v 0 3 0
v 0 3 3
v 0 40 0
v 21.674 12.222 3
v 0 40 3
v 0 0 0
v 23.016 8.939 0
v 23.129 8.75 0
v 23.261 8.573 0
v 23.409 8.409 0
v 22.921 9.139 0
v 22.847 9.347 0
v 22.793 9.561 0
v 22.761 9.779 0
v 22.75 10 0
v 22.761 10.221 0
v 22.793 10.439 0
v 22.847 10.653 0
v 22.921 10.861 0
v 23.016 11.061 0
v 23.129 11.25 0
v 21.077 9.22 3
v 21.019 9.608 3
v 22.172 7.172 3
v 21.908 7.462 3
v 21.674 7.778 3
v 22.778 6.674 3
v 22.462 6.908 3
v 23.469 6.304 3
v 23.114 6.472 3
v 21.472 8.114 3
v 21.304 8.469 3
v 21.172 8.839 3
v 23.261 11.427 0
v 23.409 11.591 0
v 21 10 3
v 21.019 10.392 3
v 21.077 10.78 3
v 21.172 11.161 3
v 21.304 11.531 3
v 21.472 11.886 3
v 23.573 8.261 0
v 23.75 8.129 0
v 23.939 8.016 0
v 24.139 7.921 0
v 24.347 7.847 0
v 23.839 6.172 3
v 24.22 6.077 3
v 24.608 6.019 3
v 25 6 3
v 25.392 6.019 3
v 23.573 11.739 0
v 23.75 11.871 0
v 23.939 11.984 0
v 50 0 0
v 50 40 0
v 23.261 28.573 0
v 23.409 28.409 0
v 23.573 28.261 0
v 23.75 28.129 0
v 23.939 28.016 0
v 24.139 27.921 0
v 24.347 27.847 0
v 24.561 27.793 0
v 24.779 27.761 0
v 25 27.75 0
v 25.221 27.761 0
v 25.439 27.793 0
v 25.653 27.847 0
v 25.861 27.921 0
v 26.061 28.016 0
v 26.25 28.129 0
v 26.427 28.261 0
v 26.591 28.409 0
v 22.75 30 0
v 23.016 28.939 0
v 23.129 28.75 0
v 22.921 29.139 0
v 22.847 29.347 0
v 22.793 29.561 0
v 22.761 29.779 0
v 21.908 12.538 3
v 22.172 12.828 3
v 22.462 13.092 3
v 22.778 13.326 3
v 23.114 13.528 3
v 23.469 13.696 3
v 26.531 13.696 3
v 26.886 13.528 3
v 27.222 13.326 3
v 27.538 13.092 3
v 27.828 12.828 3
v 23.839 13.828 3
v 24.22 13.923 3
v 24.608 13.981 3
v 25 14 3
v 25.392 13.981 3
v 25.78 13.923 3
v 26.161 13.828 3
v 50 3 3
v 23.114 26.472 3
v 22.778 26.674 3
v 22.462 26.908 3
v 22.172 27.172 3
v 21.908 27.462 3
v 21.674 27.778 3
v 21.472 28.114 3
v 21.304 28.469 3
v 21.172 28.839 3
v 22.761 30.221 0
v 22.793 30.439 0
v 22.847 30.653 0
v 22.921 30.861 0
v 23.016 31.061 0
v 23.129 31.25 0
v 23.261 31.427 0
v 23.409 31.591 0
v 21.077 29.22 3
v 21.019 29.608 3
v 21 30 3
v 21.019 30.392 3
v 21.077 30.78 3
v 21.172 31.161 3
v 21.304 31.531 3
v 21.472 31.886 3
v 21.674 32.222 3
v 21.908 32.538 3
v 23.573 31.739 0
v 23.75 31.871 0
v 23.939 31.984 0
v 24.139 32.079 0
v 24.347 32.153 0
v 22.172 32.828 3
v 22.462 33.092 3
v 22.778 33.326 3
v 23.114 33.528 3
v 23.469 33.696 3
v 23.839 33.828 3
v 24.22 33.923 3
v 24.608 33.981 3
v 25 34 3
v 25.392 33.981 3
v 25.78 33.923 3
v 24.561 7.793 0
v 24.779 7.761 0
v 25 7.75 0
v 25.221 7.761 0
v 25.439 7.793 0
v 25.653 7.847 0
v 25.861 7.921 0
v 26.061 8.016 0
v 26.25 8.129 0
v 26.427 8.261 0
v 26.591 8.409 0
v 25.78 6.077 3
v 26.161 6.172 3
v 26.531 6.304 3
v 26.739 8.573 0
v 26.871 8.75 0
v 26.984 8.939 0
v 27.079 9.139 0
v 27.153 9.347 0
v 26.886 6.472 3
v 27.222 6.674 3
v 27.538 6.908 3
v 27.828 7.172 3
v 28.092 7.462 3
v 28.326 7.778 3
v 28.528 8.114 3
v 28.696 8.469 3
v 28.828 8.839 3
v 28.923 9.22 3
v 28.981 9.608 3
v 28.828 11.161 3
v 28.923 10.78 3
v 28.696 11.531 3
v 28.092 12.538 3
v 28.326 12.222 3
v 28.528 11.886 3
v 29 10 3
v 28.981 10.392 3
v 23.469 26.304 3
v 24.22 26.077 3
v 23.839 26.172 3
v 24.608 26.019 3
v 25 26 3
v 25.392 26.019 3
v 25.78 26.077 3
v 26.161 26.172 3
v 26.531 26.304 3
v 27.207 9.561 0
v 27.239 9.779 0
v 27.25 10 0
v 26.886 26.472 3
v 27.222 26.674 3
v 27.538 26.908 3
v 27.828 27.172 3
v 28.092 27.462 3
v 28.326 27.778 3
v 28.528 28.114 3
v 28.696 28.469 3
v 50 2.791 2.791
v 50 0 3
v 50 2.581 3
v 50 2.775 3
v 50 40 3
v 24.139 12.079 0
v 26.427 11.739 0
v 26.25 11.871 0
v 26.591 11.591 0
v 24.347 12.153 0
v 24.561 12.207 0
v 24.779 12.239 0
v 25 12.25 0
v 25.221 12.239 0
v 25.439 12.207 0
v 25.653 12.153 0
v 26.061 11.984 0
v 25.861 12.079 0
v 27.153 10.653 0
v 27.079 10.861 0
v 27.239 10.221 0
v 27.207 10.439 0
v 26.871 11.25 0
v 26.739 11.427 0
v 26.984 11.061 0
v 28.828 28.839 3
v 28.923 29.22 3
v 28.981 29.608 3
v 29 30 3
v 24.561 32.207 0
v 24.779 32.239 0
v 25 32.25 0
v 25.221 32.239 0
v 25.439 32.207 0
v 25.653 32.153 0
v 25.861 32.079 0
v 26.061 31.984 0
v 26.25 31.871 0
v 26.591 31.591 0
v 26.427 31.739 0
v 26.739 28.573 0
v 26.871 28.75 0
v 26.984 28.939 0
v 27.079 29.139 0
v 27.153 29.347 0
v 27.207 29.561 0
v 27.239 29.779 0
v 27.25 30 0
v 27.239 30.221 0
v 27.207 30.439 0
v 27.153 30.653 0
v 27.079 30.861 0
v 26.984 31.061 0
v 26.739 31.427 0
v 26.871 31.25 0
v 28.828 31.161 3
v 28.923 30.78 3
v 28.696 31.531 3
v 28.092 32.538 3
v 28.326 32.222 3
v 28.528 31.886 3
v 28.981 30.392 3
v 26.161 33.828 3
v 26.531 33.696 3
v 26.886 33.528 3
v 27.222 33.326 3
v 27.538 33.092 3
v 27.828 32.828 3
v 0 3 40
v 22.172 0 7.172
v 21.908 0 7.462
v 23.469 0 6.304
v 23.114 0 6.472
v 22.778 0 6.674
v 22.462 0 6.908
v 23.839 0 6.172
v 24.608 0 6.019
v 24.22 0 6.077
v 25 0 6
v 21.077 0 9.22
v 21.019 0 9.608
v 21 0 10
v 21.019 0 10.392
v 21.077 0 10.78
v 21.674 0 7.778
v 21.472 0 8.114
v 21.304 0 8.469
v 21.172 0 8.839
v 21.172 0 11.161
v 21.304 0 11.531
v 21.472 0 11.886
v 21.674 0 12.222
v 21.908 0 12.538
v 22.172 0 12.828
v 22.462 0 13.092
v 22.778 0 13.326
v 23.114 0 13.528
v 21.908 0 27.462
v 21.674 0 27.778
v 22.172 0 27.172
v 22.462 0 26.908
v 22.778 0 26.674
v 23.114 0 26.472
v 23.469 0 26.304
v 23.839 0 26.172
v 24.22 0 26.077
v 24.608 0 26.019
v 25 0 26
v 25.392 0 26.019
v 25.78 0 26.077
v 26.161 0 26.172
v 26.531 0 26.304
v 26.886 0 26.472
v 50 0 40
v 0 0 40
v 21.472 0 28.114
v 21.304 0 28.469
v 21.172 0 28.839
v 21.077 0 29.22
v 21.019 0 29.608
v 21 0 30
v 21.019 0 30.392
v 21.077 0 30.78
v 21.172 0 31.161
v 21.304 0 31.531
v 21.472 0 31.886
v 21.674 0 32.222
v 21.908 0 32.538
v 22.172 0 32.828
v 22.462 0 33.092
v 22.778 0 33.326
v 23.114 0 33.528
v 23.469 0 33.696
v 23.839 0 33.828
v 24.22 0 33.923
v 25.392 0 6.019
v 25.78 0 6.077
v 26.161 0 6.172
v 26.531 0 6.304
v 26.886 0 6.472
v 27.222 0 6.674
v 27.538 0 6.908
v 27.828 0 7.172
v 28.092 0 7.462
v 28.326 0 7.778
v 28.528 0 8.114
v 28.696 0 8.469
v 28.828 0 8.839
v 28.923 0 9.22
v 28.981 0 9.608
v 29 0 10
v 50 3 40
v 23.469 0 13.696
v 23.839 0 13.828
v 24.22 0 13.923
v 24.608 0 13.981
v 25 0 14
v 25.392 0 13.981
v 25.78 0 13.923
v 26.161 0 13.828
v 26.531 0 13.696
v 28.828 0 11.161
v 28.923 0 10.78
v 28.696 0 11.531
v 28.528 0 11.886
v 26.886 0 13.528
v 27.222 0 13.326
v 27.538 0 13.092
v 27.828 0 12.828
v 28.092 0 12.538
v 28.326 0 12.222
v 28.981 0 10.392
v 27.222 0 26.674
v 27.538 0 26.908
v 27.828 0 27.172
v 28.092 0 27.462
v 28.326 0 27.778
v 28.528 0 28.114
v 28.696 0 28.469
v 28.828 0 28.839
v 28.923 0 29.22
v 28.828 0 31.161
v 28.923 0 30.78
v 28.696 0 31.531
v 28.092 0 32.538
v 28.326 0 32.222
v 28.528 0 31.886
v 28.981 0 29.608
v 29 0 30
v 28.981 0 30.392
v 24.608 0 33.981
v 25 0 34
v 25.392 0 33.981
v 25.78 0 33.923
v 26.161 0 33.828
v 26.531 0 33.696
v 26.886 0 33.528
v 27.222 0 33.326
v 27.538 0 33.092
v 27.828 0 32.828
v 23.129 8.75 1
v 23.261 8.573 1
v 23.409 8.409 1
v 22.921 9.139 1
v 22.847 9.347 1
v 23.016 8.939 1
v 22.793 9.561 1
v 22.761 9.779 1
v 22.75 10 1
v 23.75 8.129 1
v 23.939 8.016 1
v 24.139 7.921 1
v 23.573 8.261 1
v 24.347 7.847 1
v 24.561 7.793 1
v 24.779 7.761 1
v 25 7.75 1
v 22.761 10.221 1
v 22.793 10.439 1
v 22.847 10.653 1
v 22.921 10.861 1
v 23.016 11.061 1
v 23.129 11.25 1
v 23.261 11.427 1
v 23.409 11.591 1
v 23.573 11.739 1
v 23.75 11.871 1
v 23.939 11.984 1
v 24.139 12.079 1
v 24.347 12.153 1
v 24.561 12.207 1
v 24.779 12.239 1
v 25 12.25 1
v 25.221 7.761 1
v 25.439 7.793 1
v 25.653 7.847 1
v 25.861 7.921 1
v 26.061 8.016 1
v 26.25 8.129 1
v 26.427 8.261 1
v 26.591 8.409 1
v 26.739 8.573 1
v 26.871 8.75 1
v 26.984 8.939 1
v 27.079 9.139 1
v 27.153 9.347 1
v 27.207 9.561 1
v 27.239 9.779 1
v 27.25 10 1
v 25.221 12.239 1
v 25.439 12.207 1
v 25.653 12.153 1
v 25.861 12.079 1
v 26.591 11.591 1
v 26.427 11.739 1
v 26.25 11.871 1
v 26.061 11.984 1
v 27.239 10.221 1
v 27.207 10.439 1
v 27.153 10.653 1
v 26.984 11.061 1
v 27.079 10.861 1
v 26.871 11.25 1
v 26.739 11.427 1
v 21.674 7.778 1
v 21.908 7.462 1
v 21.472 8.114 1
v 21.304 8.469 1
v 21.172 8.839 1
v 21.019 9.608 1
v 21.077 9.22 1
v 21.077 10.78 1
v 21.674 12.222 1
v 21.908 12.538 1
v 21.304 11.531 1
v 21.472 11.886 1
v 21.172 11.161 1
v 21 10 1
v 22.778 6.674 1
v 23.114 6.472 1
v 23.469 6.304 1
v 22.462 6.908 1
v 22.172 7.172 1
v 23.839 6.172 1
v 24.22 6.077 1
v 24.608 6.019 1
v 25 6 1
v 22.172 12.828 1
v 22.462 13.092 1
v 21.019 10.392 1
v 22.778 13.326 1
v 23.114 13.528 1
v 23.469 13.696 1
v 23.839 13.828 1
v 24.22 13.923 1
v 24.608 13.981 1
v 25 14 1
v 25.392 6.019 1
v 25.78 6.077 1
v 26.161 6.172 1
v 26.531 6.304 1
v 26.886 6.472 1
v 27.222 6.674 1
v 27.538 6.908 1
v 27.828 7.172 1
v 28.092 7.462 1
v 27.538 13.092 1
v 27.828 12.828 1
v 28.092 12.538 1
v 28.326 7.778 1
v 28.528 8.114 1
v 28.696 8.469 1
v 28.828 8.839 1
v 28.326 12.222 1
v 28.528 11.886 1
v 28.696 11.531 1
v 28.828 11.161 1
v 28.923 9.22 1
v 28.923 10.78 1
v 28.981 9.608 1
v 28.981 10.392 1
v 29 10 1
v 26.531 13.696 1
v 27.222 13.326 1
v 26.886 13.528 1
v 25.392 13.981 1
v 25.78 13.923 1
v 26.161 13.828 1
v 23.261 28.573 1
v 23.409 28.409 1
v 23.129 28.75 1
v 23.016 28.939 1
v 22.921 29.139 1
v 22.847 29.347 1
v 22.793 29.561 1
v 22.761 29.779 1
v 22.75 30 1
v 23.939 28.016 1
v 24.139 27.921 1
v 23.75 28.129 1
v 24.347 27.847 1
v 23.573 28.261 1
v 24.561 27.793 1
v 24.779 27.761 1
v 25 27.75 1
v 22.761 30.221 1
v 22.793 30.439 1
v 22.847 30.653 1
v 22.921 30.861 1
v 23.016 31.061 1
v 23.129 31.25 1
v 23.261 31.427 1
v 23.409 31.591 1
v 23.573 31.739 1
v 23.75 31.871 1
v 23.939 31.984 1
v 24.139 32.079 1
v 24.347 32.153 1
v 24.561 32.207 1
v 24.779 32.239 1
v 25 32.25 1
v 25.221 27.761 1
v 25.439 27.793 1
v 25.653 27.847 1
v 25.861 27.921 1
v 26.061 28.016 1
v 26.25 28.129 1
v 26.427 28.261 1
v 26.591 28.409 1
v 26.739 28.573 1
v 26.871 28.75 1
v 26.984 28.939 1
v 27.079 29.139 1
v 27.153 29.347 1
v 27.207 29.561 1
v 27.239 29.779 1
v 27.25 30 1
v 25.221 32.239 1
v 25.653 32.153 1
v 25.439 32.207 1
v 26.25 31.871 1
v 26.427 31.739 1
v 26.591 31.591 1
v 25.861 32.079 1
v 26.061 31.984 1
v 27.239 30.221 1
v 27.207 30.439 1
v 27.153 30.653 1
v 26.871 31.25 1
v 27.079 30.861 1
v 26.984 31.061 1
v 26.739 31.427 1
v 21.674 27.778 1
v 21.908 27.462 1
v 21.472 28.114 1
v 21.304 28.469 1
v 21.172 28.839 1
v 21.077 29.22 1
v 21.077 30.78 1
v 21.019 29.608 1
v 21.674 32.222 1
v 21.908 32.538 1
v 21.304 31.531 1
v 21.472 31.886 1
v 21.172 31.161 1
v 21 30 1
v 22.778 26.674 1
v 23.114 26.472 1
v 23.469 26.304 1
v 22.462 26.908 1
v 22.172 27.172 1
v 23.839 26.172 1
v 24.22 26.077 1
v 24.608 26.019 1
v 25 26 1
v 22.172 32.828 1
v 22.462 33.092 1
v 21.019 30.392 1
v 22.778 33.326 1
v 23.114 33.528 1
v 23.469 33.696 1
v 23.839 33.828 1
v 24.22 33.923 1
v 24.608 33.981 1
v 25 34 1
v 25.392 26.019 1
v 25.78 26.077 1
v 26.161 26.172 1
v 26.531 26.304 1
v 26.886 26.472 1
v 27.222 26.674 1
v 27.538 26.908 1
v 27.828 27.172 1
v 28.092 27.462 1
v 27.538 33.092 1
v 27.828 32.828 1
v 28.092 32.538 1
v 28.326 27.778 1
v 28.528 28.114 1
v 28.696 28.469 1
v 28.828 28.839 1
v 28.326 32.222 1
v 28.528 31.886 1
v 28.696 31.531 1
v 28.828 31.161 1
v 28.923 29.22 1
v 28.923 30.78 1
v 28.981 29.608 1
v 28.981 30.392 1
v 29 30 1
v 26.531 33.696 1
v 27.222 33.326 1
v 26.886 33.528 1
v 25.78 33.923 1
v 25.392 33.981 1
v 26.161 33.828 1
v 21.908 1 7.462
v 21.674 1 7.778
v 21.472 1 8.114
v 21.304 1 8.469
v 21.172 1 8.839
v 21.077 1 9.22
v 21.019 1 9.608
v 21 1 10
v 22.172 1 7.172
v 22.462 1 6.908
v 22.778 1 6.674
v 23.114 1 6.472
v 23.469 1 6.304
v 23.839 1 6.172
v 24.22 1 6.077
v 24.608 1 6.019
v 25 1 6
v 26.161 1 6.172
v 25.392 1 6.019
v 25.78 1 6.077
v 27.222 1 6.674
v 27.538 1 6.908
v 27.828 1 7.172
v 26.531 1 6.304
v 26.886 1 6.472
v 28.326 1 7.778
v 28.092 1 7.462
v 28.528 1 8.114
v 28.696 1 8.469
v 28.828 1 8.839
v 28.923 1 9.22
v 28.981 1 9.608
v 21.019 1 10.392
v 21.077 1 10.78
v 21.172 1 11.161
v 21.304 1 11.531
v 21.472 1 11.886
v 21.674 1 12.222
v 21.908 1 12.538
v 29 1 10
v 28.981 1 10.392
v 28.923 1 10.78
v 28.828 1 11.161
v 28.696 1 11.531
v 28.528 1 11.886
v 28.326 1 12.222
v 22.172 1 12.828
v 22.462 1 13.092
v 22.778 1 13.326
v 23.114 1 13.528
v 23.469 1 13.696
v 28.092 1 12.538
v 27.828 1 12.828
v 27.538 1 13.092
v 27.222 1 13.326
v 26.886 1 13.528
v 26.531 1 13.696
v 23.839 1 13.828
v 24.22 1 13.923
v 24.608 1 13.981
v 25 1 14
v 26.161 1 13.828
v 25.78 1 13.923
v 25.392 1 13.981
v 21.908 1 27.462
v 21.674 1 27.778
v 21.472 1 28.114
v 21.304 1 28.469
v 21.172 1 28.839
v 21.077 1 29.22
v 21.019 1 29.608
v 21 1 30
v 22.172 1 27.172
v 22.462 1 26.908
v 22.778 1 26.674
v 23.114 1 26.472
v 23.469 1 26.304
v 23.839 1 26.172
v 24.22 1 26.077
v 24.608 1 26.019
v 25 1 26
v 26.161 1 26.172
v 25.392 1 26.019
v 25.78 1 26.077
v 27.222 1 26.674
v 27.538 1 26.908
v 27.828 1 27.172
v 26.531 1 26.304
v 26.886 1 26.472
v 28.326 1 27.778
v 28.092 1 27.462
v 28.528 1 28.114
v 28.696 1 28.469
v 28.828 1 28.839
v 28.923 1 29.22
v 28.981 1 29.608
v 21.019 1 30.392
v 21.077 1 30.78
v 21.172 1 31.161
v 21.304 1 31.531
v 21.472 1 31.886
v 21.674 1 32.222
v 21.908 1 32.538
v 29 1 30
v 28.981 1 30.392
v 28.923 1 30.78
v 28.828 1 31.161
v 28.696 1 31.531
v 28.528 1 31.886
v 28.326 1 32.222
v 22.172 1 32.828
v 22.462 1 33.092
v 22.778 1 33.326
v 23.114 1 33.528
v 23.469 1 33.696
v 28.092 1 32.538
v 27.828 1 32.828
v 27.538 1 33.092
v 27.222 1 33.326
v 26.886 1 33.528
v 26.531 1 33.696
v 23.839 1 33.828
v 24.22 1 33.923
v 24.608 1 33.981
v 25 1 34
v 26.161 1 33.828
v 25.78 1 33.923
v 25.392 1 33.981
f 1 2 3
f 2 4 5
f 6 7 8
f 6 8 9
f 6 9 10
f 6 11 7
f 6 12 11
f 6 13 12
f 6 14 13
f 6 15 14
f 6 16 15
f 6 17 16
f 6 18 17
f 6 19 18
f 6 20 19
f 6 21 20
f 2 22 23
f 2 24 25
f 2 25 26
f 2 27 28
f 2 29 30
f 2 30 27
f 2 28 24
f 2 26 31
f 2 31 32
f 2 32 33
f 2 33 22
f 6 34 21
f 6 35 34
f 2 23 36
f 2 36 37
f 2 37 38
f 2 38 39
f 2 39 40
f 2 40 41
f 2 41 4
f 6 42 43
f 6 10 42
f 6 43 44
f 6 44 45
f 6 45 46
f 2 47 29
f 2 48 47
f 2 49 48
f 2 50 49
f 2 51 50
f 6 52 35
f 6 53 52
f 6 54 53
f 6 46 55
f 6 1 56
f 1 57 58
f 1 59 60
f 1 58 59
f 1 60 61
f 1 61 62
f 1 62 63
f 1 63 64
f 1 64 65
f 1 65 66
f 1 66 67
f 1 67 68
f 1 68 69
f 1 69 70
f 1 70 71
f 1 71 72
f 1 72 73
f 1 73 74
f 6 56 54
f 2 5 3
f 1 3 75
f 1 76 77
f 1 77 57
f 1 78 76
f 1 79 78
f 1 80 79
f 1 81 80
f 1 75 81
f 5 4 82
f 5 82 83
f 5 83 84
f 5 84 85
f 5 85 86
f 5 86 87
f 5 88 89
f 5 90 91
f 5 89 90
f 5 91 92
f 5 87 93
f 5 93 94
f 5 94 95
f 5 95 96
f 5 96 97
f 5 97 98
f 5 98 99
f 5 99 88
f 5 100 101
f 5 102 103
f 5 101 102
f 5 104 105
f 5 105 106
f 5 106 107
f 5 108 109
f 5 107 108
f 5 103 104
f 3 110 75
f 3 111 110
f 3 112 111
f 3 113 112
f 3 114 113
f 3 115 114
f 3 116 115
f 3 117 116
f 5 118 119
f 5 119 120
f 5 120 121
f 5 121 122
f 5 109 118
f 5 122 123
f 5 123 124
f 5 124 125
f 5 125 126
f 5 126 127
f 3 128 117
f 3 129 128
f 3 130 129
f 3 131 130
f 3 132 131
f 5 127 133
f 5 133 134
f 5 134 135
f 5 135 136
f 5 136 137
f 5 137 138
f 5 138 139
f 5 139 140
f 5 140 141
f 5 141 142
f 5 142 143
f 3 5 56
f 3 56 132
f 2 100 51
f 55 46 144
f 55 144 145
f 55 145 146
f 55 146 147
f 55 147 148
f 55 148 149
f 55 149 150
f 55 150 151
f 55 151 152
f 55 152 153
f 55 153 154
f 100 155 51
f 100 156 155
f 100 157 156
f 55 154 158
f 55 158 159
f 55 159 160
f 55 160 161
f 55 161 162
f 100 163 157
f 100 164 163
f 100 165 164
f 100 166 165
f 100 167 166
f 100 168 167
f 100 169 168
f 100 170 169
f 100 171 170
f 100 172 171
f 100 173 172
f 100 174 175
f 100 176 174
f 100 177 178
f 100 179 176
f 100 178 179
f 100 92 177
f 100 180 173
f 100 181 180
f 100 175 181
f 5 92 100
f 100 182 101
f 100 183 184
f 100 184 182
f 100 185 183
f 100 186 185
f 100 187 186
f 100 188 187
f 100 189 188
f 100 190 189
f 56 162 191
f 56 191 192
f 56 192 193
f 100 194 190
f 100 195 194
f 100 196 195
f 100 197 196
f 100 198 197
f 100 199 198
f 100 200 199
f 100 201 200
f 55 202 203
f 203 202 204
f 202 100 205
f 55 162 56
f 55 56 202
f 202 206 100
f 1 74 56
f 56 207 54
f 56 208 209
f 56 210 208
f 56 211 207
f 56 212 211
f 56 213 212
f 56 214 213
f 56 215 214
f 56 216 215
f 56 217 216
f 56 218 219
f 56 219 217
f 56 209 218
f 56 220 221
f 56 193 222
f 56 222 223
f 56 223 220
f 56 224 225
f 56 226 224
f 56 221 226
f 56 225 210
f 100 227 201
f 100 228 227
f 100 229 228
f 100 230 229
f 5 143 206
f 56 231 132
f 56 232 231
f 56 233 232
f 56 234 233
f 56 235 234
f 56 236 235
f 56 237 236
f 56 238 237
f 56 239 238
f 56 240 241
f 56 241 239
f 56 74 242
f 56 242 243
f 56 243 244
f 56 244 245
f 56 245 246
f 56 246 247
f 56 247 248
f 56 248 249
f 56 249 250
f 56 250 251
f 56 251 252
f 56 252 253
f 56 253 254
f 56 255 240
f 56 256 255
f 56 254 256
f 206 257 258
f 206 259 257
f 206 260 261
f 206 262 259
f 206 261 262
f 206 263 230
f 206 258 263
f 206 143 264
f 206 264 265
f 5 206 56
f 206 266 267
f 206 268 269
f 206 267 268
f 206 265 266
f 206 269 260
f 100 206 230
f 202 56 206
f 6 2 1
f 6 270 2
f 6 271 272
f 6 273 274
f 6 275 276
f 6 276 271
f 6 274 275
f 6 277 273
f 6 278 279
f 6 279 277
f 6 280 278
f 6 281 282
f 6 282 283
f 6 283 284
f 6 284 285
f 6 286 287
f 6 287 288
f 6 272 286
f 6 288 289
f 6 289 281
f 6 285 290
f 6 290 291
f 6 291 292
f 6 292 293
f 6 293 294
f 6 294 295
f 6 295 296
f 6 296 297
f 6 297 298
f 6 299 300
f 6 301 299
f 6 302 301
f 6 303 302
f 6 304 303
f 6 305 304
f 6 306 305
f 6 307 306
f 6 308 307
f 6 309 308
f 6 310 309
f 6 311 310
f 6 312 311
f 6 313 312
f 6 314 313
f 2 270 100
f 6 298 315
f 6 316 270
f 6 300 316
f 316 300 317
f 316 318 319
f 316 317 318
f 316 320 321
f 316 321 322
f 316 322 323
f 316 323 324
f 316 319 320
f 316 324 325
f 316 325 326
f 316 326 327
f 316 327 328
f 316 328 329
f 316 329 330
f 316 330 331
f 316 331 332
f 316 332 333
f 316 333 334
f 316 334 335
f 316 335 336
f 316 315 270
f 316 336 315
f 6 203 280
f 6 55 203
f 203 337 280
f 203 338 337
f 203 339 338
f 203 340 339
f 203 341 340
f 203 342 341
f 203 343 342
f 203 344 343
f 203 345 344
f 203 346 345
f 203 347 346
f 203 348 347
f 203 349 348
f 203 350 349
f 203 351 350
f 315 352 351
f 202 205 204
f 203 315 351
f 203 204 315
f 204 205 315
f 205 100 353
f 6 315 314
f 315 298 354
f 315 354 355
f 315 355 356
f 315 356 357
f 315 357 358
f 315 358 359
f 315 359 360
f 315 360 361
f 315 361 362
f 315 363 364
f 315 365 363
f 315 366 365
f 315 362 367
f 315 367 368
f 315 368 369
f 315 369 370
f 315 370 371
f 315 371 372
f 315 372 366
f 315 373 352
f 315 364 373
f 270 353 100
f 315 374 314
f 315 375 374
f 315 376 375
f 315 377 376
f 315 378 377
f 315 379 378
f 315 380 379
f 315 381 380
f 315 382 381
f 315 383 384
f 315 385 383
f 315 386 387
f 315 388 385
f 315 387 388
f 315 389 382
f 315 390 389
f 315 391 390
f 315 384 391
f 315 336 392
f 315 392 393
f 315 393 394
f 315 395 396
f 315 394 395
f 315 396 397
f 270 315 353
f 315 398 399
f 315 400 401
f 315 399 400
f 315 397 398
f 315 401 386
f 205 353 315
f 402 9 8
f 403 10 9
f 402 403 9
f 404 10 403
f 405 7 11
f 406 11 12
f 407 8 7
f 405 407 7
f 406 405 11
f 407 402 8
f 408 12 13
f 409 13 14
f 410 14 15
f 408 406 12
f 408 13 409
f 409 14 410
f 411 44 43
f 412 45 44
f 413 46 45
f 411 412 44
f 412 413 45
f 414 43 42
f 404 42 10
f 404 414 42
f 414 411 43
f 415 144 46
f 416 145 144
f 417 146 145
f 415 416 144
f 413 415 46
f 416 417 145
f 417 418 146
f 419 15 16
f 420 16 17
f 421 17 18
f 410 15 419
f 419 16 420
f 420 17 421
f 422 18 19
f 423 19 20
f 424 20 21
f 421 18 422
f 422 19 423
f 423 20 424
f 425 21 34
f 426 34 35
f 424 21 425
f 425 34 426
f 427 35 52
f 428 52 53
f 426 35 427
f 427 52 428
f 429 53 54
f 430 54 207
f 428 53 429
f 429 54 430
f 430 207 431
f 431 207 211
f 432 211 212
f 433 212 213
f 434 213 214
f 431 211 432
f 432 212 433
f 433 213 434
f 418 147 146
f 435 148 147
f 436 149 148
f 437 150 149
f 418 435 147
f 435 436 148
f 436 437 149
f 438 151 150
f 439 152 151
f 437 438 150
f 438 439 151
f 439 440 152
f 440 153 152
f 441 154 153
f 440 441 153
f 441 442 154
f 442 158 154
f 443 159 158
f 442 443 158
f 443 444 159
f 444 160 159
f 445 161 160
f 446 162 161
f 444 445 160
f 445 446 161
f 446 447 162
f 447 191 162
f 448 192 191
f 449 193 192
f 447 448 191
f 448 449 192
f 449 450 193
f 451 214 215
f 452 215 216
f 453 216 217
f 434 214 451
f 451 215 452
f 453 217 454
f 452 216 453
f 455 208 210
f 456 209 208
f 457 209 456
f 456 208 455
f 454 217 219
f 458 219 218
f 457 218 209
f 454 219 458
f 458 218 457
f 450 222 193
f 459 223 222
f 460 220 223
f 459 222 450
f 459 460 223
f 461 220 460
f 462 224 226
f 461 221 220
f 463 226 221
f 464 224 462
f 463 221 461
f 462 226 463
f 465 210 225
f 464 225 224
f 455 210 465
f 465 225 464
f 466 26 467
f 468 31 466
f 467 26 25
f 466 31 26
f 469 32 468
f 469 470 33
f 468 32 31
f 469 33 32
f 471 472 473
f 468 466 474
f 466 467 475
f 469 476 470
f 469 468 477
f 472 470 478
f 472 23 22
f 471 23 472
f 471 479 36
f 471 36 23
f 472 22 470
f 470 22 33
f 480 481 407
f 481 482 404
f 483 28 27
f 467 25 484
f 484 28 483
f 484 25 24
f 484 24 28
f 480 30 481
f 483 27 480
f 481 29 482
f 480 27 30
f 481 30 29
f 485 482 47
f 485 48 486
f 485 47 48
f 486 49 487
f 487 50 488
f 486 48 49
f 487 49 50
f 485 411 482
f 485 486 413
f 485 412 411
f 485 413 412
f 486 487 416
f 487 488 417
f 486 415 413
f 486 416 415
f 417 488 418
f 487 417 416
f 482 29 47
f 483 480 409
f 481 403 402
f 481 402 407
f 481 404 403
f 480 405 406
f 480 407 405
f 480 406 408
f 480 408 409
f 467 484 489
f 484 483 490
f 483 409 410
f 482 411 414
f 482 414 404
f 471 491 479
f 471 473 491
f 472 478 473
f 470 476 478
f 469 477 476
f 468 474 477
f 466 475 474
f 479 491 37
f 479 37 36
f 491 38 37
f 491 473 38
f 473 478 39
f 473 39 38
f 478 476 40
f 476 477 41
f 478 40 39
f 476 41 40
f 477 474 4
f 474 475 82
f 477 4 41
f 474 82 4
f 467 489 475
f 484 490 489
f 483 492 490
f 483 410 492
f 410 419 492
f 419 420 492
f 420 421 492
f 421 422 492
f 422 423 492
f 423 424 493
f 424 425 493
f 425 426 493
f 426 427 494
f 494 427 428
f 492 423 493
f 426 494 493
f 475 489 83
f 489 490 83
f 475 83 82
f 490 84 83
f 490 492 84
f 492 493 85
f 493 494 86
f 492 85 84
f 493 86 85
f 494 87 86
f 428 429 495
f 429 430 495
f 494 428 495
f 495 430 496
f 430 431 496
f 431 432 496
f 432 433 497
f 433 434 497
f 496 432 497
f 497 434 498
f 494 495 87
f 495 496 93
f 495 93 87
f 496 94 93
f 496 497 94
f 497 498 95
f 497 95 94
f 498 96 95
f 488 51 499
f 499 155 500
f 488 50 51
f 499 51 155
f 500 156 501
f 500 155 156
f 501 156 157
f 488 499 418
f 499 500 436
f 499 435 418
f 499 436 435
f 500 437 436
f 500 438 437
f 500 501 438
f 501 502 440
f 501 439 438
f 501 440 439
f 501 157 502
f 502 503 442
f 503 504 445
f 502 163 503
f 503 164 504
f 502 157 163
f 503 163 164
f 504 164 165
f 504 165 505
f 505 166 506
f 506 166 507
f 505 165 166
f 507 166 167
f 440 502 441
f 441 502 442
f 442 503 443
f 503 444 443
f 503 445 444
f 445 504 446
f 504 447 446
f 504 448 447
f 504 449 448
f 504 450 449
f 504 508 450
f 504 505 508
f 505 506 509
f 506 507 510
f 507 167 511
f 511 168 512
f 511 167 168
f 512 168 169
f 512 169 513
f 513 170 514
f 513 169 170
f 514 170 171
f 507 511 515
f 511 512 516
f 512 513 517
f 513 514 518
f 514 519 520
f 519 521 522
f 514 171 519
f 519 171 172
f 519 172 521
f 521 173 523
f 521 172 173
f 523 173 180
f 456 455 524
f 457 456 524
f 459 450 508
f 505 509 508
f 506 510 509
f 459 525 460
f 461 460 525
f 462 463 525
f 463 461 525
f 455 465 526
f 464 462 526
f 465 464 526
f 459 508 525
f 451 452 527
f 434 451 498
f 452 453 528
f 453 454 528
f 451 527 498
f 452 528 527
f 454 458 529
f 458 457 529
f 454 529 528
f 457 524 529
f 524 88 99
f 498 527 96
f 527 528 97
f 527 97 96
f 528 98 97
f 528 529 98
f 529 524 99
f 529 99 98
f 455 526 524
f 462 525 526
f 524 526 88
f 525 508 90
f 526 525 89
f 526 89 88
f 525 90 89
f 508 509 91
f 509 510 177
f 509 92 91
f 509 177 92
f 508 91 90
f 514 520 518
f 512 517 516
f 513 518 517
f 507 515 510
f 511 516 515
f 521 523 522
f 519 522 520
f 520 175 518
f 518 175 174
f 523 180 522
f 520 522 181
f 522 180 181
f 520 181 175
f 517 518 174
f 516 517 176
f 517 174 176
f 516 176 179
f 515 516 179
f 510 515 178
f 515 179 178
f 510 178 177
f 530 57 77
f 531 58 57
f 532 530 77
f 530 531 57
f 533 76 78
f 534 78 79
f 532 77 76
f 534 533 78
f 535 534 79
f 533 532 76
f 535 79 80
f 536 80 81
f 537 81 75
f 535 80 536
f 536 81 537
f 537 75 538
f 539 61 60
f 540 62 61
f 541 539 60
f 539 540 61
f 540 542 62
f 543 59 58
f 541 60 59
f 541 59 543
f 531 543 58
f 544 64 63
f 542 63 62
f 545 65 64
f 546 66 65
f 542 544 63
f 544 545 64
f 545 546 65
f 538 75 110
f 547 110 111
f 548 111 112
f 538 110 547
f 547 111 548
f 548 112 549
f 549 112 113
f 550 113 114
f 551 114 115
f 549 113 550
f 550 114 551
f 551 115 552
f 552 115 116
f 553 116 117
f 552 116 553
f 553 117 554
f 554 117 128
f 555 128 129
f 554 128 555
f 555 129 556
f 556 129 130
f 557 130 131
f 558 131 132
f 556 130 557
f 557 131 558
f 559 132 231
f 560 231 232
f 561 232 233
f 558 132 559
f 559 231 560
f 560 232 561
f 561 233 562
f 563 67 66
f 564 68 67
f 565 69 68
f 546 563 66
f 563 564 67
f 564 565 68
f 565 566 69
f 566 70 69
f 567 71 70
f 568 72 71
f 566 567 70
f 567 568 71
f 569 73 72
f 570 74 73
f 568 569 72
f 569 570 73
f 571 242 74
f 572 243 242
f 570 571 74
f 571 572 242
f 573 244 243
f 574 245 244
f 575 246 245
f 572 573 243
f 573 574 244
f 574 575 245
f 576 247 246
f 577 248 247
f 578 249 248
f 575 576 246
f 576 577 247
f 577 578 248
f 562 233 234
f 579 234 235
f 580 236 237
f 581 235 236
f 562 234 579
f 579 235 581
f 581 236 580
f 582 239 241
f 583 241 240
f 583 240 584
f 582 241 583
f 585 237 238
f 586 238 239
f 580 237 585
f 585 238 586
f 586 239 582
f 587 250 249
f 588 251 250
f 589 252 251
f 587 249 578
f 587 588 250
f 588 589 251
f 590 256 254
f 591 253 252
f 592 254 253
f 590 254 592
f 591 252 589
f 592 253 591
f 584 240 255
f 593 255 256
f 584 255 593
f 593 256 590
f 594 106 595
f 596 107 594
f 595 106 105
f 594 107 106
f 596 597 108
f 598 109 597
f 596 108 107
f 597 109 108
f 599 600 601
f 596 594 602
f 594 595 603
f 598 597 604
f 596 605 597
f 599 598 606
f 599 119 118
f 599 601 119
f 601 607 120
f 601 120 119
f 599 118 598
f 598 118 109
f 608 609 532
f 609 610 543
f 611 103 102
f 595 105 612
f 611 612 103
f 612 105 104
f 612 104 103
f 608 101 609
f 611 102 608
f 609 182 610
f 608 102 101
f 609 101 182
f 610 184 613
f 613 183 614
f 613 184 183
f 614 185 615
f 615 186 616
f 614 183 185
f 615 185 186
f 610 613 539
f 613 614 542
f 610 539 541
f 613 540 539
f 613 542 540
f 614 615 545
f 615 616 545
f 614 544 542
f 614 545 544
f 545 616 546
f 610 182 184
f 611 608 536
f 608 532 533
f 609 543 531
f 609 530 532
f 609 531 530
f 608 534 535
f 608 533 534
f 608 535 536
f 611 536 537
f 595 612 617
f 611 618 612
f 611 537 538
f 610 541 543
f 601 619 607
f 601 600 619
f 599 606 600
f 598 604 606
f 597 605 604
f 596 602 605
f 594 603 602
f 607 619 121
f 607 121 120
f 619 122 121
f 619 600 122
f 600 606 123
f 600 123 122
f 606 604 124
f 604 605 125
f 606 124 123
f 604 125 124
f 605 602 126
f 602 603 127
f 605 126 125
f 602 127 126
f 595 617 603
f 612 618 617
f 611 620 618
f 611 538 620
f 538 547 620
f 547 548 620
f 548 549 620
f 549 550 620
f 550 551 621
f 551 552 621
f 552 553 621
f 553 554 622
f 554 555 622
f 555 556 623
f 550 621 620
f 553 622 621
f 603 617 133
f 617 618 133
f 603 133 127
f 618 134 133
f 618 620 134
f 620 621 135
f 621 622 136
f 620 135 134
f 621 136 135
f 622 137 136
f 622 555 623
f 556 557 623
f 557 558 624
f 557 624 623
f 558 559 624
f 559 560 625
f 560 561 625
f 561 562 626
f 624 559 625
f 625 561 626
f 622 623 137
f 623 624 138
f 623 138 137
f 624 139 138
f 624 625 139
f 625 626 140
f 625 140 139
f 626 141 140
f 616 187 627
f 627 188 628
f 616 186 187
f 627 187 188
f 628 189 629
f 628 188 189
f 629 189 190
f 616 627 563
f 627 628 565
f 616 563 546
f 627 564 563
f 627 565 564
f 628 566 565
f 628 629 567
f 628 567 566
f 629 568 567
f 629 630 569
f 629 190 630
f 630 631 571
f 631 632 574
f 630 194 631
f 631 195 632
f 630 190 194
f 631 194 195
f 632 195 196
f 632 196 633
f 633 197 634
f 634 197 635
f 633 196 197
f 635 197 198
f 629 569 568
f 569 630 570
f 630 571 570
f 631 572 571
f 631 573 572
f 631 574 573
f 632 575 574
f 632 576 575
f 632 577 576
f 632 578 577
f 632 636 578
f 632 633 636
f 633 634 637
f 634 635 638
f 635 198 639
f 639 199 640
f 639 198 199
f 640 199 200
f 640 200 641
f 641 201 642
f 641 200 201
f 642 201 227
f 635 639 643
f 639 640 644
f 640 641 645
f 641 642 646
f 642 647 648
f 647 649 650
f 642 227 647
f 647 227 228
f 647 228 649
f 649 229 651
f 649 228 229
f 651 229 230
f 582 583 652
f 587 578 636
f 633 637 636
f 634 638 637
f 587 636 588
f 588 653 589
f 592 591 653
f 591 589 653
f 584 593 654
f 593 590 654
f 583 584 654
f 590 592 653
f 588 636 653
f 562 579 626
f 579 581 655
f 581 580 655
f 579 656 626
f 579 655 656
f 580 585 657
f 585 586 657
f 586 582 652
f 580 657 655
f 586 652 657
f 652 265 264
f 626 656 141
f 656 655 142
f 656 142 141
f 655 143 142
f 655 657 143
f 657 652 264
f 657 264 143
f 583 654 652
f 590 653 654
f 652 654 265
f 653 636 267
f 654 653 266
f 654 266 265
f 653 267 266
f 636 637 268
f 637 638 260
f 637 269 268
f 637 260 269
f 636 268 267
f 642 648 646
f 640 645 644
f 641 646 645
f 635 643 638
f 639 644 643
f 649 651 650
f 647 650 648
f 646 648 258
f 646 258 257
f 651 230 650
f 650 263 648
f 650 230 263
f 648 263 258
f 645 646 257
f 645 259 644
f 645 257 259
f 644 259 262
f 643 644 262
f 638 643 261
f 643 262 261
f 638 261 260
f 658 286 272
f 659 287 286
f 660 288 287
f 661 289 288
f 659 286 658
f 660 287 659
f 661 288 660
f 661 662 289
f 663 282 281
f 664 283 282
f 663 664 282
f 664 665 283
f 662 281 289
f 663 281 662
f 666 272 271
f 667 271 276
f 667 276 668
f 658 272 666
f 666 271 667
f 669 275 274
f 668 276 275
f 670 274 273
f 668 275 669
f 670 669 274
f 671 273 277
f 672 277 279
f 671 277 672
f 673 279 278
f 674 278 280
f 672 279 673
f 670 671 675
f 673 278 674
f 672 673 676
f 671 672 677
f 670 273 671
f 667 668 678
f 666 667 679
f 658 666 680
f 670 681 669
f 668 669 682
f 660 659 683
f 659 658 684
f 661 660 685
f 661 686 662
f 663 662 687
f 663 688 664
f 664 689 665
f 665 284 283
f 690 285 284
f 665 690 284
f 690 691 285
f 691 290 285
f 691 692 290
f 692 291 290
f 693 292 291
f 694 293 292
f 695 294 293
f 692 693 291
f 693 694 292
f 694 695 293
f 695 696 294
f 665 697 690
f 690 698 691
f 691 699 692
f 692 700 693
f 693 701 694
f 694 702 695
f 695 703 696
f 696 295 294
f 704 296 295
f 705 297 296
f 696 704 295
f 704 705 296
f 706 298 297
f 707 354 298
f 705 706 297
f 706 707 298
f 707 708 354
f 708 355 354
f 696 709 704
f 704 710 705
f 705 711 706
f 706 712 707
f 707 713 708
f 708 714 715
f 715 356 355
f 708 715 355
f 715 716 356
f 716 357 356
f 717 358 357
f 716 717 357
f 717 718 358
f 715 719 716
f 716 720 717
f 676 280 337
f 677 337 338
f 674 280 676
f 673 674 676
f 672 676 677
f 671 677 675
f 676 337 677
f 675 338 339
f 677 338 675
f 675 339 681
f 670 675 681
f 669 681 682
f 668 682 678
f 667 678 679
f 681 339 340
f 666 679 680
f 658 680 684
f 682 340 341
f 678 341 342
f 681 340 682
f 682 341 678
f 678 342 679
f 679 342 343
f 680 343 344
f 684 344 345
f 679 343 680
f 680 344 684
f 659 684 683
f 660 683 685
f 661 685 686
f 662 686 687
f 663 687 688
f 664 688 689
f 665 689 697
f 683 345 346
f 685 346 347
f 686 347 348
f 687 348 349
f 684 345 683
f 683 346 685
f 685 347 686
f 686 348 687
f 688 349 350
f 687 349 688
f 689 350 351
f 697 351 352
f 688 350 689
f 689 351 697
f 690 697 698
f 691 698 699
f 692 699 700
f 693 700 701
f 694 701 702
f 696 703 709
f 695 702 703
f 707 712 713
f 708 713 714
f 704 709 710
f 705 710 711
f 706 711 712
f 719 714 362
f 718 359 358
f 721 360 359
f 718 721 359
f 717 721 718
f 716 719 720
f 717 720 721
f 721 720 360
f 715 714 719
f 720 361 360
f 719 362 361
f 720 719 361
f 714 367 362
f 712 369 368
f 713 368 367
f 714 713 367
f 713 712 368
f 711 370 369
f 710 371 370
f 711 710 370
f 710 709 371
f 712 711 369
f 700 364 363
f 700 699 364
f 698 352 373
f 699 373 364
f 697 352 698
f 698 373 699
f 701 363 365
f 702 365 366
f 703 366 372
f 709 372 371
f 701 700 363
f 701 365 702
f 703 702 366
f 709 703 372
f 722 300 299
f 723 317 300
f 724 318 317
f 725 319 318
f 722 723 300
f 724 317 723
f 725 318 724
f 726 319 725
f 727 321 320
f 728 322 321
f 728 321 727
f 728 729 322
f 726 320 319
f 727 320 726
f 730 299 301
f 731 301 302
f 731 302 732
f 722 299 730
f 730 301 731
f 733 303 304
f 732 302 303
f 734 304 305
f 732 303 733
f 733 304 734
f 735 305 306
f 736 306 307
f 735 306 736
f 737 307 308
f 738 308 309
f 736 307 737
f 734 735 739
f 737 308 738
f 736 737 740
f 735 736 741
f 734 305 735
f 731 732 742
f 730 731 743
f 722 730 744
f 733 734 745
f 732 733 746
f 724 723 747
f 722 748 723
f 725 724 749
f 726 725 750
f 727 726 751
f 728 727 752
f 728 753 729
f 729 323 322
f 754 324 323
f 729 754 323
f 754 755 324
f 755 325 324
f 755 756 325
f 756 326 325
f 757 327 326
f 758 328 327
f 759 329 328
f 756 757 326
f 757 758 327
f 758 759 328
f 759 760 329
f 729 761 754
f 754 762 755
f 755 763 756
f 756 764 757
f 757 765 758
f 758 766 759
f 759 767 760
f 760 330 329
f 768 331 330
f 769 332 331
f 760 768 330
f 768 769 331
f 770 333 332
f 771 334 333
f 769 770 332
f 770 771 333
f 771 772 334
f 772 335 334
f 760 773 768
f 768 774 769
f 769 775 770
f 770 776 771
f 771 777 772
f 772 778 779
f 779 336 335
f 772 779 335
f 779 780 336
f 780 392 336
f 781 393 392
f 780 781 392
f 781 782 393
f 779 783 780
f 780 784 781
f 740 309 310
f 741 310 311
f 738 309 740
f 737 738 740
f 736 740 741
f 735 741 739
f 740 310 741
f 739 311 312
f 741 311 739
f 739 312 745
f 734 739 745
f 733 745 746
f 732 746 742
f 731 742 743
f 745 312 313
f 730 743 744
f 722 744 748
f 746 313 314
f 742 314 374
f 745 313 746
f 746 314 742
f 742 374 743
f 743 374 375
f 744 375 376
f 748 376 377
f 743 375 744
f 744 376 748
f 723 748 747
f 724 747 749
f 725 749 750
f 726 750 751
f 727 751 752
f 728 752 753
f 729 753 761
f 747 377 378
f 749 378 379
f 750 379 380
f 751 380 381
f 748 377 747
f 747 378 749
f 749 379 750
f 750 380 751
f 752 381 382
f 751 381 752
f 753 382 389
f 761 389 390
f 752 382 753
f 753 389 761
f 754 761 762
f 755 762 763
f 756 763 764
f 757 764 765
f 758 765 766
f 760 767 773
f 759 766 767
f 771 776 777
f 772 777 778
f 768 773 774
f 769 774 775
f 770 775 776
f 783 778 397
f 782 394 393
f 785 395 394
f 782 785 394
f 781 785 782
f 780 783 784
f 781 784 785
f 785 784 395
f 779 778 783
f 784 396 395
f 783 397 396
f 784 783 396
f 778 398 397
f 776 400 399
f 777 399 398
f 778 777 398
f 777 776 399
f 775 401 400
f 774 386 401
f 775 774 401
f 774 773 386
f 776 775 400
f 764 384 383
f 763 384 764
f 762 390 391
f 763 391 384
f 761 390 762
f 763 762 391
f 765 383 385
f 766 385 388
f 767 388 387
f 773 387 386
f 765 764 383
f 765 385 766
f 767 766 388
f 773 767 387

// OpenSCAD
$fn = 64;

width = 50;
depth = 40;
height = 40;
thickness = 3;

hole_d = 4.5;
csk_d = 8;
csk_depth = 2;

difference() {
    union() {
        // Horizontal flange (X-Y plane, thickness in Z)
        cube([width, depth, thickness]);
        // Vertical flange (X-Z plane, thickness in Y)
        cube([width, thickness, height]);
    }

    // Holes on horizontal flange (countersink on top, z=thickness)
    for (y = [10, depth-10]) {
        translate([width/2, y, 0])
            cylinder(h = thickness, d = hole_d);
        translate([width/2, y, thickness - csk_depth])
            cylinder(h = csk_depth, d = csk_d);
    }

    // Holes on vertical flange (countersink on outer side, y=thickness)
    for (z = [10, height-10]) {
        translate([width/2, 0, z])
            rotate([90, 0, 0])
                cylinder(h = thickness, d = hole_d);
        translate([width/2, thickness - csk_depth, z])
            rotate([90, 0, 0])
                cylinder(h = csk_depth, d = csk_d);
    }
}
